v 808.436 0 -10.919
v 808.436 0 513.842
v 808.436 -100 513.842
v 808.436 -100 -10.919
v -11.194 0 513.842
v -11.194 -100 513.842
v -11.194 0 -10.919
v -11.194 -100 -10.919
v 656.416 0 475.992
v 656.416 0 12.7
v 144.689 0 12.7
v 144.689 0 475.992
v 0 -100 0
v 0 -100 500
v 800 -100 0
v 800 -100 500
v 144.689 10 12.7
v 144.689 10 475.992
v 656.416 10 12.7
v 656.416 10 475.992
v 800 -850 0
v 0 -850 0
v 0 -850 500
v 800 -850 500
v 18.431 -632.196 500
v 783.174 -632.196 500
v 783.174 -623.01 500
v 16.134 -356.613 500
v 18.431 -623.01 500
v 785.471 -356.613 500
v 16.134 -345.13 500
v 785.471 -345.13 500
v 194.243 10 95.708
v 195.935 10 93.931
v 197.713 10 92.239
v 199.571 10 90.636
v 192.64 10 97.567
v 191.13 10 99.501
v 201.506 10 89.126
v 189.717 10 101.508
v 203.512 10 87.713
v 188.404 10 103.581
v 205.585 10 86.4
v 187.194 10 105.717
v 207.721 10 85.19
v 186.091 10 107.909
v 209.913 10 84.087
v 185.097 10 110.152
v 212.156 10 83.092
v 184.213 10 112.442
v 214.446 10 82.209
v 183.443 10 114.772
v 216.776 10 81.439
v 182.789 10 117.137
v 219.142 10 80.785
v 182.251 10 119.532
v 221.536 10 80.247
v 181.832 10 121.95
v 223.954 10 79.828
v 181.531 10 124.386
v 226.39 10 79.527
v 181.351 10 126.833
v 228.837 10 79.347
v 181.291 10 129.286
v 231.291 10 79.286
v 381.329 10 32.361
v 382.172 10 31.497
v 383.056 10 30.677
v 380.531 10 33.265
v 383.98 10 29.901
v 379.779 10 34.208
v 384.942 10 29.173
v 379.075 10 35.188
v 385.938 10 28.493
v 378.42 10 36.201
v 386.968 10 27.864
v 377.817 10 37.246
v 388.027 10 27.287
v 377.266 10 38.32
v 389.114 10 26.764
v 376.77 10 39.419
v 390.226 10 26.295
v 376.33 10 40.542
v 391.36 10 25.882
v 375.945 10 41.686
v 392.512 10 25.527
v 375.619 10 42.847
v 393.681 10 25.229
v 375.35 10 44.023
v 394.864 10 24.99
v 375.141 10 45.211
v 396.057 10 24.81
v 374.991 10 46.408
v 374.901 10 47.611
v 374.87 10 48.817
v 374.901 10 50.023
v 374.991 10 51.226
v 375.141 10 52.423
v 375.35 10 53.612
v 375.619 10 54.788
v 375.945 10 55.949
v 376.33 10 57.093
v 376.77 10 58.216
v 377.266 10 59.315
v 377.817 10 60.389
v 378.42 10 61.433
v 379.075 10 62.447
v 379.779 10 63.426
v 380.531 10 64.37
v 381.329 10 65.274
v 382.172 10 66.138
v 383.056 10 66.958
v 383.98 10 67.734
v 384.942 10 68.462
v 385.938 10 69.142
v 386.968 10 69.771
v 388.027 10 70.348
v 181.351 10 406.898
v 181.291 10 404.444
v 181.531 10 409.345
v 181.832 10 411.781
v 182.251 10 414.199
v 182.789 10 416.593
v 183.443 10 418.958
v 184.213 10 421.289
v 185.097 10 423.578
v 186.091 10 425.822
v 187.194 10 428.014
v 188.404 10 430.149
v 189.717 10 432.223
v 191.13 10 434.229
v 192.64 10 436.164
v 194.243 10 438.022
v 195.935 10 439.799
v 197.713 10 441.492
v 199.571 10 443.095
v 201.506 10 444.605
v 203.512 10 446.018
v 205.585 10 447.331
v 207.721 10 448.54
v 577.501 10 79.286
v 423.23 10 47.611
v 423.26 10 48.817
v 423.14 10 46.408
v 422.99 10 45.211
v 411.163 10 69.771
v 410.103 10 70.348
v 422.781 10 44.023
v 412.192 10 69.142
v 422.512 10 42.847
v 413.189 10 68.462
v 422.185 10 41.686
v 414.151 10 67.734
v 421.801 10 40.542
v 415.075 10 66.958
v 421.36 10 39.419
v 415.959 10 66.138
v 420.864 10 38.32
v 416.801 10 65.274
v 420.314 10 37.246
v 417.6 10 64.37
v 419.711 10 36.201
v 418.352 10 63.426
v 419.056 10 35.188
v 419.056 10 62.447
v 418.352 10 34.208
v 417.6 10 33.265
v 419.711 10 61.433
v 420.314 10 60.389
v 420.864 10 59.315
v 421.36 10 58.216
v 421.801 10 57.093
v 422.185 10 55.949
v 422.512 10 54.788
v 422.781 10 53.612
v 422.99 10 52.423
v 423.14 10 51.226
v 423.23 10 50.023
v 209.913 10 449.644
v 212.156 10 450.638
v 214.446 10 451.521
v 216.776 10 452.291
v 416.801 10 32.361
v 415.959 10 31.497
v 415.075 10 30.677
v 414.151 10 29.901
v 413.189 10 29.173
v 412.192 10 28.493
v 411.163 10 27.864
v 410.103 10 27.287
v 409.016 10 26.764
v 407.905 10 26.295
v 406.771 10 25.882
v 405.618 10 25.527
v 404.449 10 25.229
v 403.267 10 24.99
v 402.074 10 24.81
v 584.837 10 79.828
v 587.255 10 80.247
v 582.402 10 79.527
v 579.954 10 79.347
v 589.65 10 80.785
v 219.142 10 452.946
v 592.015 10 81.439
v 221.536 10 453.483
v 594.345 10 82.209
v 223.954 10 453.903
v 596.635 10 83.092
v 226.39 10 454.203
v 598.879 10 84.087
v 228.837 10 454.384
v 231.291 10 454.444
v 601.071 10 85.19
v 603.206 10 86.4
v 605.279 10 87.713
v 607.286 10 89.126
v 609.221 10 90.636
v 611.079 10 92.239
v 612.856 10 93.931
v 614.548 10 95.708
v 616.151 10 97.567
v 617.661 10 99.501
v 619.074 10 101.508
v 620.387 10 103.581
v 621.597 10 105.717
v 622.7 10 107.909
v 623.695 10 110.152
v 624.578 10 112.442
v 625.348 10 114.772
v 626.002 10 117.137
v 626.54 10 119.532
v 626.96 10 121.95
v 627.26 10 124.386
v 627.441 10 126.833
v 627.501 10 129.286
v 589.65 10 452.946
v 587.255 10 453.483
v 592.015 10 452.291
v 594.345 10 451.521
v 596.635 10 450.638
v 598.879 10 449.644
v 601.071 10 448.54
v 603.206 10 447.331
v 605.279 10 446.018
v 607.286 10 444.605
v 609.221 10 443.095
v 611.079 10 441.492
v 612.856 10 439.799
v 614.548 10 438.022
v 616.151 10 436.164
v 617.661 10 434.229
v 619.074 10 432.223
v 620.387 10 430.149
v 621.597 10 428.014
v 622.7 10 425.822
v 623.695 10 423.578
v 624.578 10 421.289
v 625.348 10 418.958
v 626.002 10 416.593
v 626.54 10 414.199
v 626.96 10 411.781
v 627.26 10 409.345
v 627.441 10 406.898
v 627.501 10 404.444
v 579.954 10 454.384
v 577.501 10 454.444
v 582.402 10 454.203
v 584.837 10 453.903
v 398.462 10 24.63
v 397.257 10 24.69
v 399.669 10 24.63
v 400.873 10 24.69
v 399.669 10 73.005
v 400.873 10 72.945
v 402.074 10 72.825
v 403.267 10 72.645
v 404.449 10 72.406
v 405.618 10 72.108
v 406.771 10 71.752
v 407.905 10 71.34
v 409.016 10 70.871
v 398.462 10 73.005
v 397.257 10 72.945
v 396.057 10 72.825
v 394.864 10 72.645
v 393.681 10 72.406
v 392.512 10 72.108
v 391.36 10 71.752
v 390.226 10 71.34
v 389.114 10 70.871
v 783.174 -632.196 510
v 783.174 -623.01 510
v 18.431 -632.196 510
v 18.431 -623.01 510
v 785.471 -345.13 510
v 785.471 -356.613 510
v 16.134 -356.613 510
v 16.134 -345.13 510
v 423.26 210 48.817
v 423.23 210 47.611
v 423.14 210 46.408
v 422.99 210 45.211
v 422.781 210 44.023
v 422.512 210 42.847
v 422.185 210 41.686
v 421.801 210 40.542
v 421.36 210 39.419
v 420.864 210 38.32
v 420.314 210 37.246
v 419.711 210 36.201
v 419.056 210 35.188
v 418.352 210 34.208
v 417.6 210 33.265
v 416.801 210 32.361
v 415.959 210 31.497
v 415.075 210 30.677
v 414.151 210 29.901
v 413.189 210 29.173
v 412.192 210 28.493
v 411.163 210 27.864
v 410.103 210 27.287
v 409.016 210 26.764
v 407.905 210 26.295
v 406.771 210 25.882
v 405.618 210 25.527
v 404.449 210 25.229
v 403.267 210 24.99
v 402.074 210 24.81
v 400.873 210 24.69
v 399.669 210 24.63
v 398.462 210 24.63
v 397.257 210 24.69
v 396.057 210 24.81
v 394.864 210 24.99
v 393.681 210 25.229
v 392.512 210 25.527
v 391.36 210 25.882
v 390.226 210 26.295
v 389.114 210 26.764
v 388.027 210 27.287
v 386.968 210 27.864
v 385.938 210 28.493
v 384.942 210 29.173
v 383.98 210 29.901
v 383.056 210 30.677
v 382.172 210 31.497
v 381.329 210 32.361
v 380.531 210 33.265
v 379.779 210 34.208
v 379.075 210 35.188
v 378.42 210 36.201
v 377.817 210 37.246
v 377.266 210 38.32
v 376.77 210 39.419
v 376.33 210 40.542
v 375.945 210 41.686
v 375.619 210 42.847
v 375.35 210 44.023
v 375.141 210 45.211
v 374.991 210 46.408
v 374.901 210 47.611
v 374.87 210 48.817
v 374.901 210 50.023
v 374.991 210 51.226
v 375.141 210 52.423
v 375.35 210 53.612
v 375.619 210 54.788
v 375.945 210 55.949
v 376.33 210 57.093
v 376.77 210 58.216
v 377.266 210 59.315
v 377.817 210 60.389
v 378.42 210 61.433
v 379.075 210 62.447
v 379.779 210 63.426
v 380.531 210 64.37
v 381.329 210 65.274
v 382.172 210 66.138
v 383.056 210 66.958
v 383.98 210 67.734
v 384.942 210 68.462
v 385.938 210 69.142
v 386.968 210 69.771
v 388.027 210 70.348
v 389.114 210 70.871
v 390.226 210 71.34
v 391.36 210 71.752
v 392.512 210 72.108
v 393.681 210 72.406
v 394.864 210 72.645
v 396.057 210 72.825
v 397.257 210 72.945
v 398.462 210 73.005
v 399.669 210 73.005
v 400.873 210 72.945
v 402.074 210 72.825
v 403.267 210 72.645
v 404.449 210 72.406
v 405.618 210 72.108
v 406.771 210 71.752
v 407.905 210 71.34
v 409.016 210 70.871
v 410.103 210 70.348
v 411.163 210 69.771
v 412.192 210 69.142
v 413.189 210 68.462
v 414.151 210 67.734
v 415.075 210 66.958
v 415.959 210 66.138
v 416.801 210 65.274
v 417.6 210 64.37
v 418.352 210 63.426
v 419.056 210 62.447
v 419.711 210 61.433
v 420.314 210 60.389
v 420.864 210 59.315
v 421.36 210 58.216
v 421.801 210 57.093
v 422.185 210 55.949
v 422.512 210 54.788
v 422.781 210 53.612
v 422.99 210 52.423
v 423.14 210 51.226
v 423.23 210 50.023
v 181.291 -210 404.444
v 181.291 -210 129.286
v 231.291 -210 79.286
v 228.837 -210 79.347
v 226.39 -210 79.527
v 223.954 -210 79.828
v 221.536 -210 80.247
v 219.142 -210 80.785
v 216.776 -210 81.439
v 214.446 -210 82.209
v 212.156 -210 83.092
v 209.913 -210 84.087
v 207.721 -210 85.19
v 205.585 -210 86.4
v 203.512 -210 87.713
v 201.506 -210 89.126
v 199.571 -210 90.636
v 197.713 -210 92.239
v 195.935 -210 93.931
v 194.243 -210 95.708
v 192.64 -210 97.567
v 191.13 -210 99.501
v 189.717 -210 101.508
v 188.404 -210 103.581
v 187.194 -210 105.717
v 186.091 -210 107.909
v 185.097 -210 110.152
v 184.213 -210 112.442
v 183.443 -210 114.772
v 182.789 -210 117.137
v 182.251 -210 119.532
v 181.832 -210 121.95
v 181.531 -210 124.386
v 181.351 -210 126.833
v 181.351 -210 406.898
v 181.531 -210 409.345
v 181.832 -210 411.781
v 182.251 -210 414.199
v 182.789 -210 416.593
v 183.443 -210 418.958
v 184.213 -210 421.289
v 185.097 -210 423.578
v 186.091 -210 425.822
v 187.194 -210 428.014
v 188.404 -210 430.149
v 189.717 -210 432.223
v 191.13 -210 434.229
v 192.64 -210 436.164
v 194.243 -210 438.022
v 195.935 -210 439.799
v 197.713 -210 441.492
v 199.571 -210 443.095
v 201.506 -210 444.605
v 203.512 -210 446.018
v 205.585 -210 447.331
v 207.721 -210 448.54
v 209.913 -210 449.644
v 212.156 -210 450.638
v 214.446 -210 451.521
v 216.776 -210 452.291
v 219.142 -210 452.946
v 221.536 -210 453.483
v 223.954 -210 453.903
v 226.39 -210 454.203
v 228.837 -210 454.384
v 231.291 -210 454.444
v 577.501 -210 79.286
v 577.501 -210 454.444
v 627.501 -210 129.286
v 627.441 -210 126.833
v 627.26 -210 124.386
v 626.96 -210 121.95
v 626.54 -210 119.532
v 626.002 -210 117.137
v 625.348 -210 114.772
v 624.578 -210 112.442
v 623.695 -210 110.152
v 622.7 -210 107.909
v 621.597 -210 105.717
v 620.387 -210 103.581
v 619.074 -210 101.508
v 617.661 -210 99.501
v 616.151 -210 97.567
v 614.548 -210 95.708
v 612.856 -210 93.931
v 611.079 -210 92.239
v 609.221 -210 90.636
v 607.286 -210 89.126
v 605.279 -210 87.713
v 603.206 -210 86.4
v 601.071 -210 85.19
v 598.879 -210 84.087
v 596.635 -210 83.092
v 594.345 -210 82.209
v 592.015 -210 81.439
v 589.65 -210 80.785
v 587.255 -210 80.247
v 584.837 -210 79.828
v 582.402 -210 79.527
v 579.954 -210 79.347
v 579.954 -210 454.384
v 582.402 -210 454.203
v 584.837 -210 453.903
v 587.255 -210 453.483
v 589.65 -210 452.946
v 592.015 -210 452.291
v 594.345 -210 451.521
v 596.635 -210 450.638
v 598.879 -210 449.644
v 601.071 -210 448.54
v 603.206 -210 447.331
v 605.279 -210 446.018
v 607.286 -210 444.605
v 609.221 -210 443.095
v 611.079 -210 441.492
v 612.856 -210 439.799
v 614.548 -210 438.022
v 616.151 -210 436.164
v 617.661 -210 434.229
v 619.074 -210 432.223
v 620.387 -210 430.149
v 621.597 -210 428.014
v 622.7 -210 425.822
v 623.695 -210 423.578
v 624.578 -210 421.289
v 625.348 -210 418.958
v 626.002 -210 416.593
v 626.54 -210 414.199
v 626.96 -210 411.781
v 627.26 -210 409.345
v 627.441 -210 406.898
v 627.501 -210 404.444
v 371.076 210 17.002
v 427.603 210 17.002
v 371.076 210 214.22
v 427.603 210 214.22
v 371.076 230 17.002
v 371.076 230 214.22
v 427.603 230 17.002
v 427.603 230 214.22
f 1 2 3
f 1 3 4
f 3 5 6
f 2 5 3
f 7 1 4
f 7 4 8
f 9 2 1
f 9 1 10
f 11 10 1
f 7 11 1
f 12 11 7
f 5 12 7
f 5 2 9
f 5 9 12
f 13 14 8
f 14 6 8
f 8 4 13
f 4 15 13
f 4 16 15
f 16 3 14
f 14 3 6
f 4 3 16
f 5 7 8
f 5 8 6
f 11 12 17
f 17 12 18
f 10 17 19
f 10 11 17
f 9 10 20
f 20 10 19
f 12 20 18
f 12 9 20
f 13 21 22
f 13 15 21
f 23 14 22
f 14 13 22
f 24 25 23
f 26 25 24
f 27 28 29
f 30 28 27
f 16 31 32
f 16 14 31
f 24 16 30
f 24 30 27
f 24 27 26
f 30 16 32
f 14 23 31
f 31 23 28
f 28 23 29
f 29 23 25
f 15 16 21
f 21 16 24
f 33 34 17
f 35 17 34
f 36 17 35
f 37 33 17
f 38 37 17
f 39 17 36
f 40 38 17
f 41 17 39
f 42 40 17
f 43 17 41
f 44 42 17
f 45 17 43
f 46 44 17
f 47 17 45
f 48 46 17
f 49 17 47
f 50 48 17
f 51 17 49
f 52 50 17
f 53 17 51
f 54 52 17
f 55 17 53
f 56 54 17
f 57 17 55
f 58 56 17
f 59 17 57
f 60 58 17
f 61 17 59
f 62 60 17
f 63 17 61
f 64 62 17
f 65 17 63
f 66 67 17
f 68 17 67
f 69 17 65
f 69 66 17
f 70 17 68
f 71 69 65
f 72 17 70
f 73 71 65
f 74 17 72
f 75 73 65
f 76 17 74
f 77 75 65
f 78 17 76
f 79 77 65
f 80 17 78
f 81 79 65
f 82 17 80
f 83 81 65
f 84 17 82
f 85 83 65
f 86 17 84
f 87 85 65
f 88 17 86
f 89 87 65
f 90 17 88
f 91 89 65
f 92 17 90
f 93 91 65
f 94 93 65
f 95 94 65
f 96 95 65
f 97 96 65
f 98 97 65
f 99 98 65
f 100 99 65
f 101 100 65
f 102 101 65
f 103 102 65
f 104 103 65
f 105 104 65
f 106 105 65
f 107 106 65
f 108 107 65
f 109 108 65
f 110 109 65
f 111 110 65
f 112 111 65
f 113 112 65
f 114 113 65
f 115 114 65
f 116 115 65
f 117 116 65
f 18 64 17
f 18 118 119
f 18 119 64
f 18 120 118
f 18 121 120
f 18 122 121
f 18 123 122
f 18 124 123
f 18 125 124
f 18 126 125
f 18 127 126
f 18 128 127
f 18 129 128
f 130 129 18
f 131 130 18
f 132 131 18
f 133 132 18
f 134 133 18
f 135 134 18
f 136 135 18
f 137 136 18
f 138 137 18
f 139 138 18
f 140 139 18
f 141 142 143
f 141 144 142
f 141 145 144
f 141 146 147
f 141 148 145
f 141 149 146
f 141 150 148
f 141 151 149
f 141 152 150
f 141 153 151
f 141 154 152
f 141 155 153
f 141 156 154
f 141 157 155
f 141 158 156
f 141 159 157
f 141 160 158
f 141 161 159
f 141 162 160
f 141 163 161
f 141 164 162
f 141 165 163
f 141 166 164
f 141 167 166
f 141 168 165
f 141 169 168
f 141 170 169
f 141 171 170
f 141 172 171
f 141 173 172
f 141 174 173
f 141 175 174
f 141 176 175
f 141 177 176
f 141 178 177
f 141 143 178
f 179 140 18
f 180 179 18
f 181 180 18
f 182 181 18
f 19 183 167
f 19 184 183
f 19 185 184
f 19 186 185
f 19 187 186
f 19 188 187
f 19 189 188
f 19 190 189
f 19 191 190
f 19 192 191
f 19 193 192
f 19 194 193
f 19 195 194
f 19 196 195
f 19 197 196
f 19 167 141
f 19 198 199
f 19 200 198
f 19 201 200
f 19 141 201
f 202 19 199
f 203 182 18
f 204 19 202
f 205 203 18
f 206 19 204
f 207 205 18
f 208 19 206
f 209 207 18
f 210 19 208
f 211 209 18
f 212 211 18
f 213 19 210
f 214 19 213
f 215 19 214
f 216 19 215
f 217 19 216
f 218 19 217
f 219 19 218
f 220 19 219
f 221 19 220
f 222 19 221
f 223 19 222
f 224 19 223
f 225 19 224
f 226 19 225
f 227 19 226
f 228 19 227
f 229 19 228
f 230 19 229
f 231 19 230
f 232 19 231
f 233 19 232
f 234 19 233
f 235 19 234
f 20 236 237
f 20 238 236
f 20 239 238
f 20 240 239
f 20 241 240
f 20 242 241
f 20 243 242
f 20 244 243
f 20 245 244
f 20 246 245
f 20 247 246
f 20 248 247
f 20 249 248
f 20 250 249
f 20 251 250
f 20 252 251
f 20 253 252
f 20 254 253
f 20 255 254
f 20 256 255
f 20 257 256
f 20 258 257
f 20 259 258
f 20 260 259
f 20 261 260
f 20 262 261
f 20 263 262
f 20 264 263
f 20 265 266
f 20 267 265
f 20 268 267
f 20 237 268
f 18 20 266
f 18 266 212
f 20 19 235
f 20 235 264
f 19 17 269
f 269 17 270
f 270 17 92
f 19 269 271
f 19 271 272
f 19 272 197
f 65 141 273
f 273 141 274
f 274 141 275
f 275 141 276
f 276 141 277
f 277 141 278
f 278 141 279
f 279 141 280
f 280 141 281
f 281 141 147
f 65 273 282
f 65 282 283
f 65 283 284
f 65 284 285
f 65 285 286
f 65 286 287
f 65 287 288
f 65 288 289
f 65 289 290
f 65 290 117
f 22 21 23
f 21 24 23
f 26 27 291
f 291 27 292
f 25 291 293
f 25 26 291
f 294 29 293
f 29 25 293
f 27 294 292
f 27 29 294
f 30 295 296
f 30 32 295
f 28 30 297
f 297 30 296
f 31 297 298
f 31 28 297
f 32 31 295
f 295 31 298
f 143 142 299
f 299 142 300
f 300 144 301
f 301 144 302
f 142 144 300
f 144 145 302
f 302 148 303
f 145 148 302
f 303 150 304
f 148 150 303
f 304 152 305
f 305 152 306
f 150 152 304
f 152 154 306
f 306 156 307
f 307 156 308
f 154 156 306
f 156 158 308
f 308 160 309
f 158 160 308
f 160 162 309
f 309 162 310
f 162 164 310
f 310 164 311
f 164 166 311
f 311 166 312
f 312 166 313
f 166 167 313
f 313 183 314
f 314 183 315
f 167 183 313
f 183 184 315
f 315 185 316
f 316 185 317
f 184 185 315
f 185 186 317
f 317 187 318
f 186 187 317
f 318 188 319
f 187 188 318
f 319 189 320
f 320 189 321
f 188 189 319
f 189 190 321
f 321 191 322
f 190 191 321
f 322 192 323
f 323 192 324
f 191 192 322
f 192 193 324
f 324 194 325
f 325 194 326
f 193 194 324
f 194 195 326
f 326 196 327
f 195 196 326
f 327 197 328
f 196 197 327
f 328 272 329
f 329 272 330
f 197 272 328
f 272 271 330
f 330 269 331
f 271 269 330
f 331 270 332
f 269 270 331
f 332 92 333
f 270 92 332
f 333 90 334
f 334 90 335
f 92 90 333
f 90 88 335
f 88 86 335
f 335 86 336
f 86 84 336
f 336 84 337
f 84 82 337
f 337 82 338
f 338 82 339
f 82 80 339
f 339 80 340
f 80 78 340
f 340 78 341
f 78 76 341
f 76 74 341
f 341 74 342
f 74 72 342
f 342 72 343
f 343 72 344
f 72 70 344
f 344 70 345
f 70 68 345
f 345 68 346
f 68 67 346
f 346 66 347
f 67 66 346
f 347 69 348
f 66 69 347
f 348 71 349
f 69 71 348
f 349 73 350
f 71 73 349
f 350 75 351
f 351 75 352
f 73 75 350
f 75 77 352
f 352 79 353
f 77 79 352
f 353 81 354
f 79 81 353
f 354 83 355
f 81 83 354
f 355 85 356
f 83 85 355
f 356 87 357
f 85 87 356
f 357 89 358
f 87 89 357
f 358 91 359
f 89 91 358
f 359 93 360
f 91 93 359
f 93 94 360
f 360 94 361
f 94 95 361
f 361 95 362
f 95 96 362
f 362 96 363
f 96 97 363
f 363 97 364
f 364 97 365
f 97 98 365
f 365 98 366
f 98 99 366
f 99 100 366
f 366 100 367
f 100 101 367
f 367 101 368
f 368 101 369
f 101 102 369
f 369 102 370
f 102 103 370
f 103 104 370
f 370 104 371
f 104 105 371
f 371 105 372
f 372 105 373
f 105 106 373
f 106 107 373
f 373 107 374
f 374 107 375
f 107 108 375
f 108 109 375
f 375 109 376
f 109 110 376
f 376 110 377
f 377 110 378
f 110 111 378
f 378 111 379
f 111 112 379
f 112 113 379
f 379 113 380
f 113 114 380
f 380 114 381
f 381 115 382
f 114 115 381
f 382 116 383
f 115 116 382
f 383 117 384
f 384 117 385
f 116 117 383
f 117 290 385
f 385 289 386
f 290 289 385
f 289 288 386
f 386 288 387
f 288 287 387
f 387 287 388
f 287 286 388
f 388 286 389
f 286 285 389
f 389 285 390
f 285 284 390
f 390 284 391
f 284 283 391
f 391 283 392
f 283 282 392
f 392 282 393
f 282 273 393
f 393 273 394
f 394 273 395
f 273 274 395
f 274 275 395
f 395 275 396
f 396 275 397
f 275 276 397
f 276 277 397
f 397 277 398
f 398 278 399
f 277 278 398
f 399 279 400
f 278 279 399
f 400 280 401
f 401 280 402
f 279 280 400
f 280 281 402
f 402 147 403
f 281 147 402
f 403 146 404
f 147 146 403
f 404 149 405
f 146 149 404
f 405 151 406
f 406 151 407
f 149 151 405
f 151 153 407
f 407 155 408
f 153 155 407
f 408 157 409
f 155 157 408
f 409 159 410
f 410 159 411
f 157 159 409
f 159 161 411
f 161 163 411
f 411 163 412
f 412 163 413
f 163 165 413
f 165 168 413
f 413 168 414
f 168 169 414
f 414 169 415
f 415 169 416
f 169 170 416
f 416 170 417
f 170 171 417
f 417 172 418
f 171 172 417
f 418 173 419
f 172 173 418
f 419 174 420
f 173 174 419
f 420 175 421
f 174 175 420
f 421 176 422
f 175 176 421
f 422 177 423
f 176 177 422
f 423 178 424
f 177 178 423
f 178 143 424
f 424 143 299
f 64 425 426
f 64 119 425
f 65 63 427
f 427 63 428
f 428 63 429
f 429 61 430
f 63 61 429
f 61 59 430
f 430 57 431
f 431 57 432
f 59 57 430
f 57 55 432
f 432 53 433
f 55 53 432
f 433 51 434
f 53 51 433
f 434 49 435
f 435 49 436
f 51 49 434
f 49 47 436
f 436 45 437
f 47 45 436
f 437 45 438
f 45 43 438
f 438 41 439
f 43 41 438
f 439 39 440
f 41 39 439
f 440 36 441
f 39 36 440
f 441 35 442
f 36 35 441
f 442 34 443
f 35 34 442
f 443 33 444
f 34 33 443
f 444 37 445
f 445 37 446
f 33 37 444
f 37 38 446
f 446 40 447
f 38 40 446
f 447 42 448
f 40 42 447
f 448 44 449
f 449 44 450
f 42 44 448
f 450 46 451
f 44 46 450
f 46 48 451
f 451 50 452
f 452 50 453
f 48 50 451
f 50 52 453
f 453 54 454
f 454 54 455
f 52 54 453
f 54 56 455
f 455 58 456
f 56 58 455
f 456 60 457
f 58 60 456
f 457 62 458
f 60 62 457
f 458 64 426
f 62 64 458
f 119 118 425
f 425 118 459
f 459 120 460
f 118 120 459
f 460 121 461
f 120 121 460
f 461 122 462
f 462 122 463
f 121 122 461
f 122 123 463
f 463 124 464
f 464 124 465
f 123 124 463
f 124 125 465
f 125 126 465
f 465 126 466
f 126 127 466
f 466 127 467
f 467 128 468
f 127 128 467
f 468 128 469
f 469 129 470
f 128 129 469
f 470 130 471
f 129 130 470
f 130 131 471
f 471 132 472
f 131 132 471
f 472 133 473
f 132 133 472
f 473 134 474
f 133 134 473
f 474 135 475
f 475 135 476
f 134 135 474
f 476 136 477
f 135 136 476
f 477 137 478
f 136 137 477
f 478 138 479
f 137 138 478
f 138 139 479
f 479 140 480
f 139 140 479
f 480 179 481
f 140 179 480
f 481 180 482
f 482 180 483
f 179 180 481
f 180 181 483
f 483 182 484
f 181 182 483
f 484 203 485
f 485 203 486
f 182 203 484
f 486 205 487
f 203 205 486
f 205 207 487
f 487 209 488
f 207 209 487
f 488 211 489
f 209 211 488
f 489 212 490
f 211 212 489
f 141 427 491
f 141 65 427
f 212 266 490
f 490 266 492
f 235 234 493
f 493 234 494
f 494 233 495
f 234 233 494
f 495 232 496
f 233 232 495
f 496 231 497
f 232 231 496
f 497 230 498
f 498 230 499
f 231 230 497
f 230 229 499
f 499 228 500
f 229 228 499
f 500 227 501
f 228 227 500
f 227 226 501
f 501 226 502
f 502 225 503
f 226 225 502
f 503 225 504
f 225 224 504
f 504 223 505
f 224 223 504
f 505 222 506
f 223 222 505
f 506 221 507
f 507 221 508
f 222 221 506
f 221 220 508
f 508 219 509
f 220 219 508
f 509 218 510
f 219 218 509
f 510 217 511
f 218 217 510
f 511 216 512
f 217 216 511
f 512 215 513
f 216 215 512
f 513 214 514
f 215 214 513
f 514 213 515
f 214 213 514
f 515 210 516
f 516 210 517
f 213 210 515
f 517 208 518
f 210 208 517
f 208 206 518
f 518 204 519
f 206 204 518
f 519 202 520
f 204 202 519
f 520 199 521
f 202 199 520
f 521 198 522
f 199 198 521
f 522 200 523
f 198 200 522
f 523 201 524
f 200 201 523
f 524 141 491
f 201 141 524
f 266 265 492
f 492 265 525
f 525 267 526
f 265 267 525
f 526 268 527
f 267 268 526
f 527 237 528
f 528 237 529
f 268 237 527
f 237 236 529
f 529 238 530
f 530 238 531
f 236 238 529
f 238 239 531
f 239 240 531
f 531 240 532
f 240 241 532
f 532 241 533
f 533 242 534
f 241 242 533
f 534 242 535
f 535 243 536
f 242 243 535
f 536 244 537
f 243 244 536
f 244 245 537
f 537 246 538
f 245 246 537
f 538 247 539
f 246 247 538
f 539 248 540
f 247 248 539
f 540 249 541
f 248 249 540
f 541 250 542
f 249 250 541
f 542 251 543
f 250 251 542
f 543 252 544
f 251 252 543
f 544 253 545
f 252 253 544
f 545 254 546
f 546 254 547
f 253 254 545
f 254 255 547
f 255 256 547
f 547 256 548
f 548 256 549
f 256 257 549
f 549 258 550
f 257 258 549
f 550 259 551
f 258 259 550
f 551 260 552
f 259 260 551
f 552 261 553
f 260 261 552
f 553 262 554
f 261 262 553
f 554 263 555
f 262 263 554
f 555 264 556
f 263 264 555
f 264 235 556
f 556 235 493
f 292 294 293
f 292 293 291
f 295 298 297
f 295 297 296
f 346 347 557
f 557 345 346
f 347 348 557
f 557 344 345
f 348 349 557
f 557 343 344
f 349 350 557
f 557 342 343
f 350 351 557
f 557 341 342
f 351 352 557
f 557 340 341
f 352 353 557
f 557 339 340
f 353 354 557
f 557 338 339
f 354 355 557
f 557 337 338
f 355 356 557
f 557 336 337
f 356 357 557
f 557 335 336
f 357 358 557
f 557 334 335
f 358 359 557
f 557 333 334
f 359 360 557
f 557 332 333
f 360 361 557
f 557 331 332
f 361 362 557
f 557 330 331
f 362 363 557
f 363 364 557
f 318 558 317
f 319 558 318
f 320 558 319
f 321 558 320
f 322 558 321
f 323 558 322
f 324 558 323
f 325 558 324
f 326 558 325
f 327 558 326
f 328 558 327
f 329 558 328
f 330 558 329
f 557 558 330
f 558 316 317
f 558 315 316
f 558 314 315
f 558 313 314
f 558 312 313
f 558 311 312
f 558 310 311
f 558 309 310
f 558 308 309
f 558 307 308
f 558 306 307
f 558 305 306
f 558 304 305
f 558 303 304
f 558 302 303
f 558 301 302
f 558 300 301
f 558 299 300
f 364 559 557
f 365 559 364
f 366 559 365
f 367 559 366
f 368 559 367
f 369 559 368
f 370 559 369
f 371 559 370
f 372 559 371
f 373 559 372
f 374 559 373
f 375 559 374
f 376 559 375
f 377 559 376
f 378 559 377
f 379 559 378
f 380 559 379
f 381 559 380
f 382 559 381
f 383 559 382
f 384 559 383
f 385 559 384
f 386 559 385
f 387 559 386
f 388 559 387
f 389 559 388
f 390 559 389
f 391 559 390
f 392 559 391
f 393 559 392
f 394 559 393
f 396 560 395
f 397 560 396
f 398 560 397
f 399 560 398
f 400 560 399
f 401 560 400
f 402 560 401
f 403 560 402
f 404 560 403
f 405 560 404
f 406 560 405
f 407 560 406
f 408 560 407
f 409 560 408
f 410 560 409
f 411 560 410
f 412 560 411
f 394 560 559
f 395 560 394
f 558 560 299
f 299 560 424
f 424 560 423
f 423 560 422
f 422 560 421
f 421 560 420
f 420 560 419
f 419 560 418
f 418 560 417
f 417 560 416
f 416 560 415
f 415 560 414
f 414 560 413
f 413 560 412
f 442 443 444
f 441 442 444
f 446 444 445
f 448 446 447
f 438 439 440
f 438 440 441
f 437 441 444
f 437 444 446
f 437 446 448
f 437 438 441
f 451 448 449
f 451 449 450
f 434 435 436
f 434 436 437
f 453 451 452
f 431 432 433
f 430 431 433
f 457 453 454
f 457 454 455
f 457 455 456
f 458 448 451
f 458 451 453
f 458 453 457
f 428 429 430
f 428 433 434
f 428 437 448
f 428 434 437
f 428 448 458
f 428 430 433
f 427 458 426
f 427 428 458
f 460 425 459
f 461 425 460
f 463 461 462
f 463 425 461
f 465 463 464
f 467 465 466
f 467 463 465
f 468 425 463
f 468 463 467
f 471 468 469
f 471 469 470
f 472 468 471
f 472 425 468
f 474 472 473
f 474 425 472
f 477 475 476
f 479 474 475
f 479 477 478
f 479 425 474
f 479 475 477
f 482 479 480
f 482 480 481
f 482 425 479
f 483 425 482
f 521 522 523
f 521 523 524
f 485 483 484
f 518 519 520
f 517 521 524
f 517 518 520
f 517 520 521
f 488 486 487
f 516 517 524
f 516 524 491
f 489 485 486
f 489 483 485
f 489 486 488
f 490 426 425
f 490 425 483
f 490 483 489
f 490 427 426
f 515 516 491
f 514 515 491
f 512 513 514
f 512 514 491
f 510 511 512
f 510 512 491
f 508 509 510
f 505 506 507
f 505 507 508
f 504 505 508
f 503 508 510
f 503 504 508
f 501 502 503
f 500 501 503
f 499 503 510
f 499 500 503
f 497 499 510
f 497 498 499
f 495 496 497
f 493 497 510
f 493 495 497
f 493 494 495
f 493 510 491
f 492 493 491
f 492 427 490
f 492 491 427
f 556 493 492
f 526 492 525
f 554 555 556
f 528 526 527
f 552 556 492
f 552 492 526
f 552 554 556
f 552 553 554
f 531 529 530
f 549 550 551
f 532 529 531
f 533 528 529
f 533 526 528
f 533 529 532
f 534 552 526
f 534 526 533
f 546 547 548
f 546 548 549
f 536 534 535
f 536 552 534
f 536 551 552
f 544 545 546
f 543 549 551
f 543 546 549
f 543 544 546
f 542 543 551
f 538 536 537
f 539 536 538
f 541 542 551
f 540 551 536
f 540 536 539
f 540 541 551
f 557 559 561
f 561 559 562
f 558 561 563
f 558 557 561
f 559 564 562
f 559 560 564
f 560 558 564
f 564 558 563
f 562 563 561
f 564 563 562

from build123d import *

# Parameters (mm, degrees)
SKETCH_W      = 800
SKETCH_H      = 500
PAD_DEPTH     = 850
SKETCH001_W   = 511.727677
SKETCH001_H   = 463.29253
PAD001_DEPTH  = 10
POCKET_DEPTH  = 220
SKETCH003_R   = 24.194915
PAD002_DEPTH  = 200
SKETCH004_W   = 56.527466
SKETCH004_H   = 197.218046
PAD003_DEPTH  = 20
SKETCH005_W   = 819.629583
SKETCH005_H   = 524.761626
SKETCH005_W_2 = 475.380982
SKETCH005_H_2 = 411.07835
PAD004_DEPTH  = 100
SKETCH006_W   = 769.3365
SKETCH006_H   = 11.482666
SKETCH006_W_2 = 764.743431
SKETCH006_H_2 = 9.186035
PAD005_DEPTH  = 10


with BuildPart() as part:
    # Sketch → Pad (new body)
    with BuildSketch(Plane.XZ):
        with Locations((400, 250)):
            Rectangle(SKETCH_W, SKETCH_H)
    extrude(amount=PAD_DEPTH)

    # Sketch001 (on Face5 of Pad) → Pad001 (join)
    with BuildSketch(Plane(origin=(0, 0, 0), x_dir=(1, 0, 0), z_dir=(0, 1, 0))):
        with Locations((400.552361, -244.345876)):
            Rectangle(SKETCH001_W, SKETCH001_H)
    extrude(amount=PAD001_DEPTH)

    # Sketch002 (on Face11 of Pad001) → Pocket (cut)
    with BuildSketch(Plane(origin=(0, 10, 0), x_dir=(1, 0, 0), z_dir=(0, 1, 0))):
        with BuildLine():
            Line((181.290512, -129.286423), (181.290512, -404.444153))
            ThreePointArc((181.290512, -404.444153), (195.935173, -439.799492), (231.290512, -454.444153))
            Line((231.290512, -454.444153), (577.500916, -454.444153))
            ThreePointArc((577.500916, -454.444153), (612.856255, -439.799492), (627.500916, -404.444153))
            Line((627.500916, -404.444153), (627.500916, -129.286423))
            ThreePointArc((627.500916, -129.286423), (612.856255, -93.931084), (577.500916, -79.286423))
            Line((577.500916, -79.286423), (231.290512, -79.286423))
            ThreePointArc((231.290512, -79.286423), (195.935173, -93.931084), (181.290512, -129.286423))
        make_face()
    extrude(amount=-POCKET_DEPTH, mode=Mode.SUBTRACT)

    # Sketch003 (on Face11 of Pocket) → Pad002 (join)
    with BuildSketch(Plane(origin=(0, 10, 0), x_dir=(1, 0, 0), z_dir=(0, 1, 0))):
        with Locations((399.065338, -48.817406)):
            Circle(SKETCH003_R)
    extrude(amount=PAD002_DEPTH)

    # Sketch004 (on Face21 of Pad002) → Pad003 (join)
    with BuildSketch(Plane(origin=(0, 210, 0), x_dir=(1, 0, 0), z_dir=(0, 1, 0))):
        with Locations((399.339508, -115.610719)):
            Rectangle(SKETCH004_W, SKETCH004_H)
    extrude(amount=PAD003_DEPTH)

    # Sketch005 (on Face4 of Pad003) → Pad004 (join)
    with BuildSketch(Plane(origin=(0, 0, 0), x_dir=(1, 0, 0), z_dir=(0, 1, 0))):
        with Locations((398.620938, -251.461533)):
            Rectangle(SKETCH005_W, SKETCH005_H)
        with Locations((403.098633, -266.965067)):
            Rectangle(SKETCH005_W_2, SKETCH005_H_2, mode=Mode.SUBTRACT)
    extrude(amount=-PAD004_DEPTH)

    # Sketch006 (on Face8 of Pad004) → Pad005 (join)
    with BuildSketch(Plane(origin=(0, 0, 500), x_dir=(-1, 0, 0), z_dir=(0, 0, 1))):
        with Locations((-400.80227, 350.871674)):
            Rectangle(SKETCH006_W, SKETCH006_H)
        with Locations((-400.802265, 627.603149)):
            Rectangle(SKETCH006_W_2, SKETCH006_H_2)
    extrude(amount=PAD005_DEPTH)


solid = part.part
